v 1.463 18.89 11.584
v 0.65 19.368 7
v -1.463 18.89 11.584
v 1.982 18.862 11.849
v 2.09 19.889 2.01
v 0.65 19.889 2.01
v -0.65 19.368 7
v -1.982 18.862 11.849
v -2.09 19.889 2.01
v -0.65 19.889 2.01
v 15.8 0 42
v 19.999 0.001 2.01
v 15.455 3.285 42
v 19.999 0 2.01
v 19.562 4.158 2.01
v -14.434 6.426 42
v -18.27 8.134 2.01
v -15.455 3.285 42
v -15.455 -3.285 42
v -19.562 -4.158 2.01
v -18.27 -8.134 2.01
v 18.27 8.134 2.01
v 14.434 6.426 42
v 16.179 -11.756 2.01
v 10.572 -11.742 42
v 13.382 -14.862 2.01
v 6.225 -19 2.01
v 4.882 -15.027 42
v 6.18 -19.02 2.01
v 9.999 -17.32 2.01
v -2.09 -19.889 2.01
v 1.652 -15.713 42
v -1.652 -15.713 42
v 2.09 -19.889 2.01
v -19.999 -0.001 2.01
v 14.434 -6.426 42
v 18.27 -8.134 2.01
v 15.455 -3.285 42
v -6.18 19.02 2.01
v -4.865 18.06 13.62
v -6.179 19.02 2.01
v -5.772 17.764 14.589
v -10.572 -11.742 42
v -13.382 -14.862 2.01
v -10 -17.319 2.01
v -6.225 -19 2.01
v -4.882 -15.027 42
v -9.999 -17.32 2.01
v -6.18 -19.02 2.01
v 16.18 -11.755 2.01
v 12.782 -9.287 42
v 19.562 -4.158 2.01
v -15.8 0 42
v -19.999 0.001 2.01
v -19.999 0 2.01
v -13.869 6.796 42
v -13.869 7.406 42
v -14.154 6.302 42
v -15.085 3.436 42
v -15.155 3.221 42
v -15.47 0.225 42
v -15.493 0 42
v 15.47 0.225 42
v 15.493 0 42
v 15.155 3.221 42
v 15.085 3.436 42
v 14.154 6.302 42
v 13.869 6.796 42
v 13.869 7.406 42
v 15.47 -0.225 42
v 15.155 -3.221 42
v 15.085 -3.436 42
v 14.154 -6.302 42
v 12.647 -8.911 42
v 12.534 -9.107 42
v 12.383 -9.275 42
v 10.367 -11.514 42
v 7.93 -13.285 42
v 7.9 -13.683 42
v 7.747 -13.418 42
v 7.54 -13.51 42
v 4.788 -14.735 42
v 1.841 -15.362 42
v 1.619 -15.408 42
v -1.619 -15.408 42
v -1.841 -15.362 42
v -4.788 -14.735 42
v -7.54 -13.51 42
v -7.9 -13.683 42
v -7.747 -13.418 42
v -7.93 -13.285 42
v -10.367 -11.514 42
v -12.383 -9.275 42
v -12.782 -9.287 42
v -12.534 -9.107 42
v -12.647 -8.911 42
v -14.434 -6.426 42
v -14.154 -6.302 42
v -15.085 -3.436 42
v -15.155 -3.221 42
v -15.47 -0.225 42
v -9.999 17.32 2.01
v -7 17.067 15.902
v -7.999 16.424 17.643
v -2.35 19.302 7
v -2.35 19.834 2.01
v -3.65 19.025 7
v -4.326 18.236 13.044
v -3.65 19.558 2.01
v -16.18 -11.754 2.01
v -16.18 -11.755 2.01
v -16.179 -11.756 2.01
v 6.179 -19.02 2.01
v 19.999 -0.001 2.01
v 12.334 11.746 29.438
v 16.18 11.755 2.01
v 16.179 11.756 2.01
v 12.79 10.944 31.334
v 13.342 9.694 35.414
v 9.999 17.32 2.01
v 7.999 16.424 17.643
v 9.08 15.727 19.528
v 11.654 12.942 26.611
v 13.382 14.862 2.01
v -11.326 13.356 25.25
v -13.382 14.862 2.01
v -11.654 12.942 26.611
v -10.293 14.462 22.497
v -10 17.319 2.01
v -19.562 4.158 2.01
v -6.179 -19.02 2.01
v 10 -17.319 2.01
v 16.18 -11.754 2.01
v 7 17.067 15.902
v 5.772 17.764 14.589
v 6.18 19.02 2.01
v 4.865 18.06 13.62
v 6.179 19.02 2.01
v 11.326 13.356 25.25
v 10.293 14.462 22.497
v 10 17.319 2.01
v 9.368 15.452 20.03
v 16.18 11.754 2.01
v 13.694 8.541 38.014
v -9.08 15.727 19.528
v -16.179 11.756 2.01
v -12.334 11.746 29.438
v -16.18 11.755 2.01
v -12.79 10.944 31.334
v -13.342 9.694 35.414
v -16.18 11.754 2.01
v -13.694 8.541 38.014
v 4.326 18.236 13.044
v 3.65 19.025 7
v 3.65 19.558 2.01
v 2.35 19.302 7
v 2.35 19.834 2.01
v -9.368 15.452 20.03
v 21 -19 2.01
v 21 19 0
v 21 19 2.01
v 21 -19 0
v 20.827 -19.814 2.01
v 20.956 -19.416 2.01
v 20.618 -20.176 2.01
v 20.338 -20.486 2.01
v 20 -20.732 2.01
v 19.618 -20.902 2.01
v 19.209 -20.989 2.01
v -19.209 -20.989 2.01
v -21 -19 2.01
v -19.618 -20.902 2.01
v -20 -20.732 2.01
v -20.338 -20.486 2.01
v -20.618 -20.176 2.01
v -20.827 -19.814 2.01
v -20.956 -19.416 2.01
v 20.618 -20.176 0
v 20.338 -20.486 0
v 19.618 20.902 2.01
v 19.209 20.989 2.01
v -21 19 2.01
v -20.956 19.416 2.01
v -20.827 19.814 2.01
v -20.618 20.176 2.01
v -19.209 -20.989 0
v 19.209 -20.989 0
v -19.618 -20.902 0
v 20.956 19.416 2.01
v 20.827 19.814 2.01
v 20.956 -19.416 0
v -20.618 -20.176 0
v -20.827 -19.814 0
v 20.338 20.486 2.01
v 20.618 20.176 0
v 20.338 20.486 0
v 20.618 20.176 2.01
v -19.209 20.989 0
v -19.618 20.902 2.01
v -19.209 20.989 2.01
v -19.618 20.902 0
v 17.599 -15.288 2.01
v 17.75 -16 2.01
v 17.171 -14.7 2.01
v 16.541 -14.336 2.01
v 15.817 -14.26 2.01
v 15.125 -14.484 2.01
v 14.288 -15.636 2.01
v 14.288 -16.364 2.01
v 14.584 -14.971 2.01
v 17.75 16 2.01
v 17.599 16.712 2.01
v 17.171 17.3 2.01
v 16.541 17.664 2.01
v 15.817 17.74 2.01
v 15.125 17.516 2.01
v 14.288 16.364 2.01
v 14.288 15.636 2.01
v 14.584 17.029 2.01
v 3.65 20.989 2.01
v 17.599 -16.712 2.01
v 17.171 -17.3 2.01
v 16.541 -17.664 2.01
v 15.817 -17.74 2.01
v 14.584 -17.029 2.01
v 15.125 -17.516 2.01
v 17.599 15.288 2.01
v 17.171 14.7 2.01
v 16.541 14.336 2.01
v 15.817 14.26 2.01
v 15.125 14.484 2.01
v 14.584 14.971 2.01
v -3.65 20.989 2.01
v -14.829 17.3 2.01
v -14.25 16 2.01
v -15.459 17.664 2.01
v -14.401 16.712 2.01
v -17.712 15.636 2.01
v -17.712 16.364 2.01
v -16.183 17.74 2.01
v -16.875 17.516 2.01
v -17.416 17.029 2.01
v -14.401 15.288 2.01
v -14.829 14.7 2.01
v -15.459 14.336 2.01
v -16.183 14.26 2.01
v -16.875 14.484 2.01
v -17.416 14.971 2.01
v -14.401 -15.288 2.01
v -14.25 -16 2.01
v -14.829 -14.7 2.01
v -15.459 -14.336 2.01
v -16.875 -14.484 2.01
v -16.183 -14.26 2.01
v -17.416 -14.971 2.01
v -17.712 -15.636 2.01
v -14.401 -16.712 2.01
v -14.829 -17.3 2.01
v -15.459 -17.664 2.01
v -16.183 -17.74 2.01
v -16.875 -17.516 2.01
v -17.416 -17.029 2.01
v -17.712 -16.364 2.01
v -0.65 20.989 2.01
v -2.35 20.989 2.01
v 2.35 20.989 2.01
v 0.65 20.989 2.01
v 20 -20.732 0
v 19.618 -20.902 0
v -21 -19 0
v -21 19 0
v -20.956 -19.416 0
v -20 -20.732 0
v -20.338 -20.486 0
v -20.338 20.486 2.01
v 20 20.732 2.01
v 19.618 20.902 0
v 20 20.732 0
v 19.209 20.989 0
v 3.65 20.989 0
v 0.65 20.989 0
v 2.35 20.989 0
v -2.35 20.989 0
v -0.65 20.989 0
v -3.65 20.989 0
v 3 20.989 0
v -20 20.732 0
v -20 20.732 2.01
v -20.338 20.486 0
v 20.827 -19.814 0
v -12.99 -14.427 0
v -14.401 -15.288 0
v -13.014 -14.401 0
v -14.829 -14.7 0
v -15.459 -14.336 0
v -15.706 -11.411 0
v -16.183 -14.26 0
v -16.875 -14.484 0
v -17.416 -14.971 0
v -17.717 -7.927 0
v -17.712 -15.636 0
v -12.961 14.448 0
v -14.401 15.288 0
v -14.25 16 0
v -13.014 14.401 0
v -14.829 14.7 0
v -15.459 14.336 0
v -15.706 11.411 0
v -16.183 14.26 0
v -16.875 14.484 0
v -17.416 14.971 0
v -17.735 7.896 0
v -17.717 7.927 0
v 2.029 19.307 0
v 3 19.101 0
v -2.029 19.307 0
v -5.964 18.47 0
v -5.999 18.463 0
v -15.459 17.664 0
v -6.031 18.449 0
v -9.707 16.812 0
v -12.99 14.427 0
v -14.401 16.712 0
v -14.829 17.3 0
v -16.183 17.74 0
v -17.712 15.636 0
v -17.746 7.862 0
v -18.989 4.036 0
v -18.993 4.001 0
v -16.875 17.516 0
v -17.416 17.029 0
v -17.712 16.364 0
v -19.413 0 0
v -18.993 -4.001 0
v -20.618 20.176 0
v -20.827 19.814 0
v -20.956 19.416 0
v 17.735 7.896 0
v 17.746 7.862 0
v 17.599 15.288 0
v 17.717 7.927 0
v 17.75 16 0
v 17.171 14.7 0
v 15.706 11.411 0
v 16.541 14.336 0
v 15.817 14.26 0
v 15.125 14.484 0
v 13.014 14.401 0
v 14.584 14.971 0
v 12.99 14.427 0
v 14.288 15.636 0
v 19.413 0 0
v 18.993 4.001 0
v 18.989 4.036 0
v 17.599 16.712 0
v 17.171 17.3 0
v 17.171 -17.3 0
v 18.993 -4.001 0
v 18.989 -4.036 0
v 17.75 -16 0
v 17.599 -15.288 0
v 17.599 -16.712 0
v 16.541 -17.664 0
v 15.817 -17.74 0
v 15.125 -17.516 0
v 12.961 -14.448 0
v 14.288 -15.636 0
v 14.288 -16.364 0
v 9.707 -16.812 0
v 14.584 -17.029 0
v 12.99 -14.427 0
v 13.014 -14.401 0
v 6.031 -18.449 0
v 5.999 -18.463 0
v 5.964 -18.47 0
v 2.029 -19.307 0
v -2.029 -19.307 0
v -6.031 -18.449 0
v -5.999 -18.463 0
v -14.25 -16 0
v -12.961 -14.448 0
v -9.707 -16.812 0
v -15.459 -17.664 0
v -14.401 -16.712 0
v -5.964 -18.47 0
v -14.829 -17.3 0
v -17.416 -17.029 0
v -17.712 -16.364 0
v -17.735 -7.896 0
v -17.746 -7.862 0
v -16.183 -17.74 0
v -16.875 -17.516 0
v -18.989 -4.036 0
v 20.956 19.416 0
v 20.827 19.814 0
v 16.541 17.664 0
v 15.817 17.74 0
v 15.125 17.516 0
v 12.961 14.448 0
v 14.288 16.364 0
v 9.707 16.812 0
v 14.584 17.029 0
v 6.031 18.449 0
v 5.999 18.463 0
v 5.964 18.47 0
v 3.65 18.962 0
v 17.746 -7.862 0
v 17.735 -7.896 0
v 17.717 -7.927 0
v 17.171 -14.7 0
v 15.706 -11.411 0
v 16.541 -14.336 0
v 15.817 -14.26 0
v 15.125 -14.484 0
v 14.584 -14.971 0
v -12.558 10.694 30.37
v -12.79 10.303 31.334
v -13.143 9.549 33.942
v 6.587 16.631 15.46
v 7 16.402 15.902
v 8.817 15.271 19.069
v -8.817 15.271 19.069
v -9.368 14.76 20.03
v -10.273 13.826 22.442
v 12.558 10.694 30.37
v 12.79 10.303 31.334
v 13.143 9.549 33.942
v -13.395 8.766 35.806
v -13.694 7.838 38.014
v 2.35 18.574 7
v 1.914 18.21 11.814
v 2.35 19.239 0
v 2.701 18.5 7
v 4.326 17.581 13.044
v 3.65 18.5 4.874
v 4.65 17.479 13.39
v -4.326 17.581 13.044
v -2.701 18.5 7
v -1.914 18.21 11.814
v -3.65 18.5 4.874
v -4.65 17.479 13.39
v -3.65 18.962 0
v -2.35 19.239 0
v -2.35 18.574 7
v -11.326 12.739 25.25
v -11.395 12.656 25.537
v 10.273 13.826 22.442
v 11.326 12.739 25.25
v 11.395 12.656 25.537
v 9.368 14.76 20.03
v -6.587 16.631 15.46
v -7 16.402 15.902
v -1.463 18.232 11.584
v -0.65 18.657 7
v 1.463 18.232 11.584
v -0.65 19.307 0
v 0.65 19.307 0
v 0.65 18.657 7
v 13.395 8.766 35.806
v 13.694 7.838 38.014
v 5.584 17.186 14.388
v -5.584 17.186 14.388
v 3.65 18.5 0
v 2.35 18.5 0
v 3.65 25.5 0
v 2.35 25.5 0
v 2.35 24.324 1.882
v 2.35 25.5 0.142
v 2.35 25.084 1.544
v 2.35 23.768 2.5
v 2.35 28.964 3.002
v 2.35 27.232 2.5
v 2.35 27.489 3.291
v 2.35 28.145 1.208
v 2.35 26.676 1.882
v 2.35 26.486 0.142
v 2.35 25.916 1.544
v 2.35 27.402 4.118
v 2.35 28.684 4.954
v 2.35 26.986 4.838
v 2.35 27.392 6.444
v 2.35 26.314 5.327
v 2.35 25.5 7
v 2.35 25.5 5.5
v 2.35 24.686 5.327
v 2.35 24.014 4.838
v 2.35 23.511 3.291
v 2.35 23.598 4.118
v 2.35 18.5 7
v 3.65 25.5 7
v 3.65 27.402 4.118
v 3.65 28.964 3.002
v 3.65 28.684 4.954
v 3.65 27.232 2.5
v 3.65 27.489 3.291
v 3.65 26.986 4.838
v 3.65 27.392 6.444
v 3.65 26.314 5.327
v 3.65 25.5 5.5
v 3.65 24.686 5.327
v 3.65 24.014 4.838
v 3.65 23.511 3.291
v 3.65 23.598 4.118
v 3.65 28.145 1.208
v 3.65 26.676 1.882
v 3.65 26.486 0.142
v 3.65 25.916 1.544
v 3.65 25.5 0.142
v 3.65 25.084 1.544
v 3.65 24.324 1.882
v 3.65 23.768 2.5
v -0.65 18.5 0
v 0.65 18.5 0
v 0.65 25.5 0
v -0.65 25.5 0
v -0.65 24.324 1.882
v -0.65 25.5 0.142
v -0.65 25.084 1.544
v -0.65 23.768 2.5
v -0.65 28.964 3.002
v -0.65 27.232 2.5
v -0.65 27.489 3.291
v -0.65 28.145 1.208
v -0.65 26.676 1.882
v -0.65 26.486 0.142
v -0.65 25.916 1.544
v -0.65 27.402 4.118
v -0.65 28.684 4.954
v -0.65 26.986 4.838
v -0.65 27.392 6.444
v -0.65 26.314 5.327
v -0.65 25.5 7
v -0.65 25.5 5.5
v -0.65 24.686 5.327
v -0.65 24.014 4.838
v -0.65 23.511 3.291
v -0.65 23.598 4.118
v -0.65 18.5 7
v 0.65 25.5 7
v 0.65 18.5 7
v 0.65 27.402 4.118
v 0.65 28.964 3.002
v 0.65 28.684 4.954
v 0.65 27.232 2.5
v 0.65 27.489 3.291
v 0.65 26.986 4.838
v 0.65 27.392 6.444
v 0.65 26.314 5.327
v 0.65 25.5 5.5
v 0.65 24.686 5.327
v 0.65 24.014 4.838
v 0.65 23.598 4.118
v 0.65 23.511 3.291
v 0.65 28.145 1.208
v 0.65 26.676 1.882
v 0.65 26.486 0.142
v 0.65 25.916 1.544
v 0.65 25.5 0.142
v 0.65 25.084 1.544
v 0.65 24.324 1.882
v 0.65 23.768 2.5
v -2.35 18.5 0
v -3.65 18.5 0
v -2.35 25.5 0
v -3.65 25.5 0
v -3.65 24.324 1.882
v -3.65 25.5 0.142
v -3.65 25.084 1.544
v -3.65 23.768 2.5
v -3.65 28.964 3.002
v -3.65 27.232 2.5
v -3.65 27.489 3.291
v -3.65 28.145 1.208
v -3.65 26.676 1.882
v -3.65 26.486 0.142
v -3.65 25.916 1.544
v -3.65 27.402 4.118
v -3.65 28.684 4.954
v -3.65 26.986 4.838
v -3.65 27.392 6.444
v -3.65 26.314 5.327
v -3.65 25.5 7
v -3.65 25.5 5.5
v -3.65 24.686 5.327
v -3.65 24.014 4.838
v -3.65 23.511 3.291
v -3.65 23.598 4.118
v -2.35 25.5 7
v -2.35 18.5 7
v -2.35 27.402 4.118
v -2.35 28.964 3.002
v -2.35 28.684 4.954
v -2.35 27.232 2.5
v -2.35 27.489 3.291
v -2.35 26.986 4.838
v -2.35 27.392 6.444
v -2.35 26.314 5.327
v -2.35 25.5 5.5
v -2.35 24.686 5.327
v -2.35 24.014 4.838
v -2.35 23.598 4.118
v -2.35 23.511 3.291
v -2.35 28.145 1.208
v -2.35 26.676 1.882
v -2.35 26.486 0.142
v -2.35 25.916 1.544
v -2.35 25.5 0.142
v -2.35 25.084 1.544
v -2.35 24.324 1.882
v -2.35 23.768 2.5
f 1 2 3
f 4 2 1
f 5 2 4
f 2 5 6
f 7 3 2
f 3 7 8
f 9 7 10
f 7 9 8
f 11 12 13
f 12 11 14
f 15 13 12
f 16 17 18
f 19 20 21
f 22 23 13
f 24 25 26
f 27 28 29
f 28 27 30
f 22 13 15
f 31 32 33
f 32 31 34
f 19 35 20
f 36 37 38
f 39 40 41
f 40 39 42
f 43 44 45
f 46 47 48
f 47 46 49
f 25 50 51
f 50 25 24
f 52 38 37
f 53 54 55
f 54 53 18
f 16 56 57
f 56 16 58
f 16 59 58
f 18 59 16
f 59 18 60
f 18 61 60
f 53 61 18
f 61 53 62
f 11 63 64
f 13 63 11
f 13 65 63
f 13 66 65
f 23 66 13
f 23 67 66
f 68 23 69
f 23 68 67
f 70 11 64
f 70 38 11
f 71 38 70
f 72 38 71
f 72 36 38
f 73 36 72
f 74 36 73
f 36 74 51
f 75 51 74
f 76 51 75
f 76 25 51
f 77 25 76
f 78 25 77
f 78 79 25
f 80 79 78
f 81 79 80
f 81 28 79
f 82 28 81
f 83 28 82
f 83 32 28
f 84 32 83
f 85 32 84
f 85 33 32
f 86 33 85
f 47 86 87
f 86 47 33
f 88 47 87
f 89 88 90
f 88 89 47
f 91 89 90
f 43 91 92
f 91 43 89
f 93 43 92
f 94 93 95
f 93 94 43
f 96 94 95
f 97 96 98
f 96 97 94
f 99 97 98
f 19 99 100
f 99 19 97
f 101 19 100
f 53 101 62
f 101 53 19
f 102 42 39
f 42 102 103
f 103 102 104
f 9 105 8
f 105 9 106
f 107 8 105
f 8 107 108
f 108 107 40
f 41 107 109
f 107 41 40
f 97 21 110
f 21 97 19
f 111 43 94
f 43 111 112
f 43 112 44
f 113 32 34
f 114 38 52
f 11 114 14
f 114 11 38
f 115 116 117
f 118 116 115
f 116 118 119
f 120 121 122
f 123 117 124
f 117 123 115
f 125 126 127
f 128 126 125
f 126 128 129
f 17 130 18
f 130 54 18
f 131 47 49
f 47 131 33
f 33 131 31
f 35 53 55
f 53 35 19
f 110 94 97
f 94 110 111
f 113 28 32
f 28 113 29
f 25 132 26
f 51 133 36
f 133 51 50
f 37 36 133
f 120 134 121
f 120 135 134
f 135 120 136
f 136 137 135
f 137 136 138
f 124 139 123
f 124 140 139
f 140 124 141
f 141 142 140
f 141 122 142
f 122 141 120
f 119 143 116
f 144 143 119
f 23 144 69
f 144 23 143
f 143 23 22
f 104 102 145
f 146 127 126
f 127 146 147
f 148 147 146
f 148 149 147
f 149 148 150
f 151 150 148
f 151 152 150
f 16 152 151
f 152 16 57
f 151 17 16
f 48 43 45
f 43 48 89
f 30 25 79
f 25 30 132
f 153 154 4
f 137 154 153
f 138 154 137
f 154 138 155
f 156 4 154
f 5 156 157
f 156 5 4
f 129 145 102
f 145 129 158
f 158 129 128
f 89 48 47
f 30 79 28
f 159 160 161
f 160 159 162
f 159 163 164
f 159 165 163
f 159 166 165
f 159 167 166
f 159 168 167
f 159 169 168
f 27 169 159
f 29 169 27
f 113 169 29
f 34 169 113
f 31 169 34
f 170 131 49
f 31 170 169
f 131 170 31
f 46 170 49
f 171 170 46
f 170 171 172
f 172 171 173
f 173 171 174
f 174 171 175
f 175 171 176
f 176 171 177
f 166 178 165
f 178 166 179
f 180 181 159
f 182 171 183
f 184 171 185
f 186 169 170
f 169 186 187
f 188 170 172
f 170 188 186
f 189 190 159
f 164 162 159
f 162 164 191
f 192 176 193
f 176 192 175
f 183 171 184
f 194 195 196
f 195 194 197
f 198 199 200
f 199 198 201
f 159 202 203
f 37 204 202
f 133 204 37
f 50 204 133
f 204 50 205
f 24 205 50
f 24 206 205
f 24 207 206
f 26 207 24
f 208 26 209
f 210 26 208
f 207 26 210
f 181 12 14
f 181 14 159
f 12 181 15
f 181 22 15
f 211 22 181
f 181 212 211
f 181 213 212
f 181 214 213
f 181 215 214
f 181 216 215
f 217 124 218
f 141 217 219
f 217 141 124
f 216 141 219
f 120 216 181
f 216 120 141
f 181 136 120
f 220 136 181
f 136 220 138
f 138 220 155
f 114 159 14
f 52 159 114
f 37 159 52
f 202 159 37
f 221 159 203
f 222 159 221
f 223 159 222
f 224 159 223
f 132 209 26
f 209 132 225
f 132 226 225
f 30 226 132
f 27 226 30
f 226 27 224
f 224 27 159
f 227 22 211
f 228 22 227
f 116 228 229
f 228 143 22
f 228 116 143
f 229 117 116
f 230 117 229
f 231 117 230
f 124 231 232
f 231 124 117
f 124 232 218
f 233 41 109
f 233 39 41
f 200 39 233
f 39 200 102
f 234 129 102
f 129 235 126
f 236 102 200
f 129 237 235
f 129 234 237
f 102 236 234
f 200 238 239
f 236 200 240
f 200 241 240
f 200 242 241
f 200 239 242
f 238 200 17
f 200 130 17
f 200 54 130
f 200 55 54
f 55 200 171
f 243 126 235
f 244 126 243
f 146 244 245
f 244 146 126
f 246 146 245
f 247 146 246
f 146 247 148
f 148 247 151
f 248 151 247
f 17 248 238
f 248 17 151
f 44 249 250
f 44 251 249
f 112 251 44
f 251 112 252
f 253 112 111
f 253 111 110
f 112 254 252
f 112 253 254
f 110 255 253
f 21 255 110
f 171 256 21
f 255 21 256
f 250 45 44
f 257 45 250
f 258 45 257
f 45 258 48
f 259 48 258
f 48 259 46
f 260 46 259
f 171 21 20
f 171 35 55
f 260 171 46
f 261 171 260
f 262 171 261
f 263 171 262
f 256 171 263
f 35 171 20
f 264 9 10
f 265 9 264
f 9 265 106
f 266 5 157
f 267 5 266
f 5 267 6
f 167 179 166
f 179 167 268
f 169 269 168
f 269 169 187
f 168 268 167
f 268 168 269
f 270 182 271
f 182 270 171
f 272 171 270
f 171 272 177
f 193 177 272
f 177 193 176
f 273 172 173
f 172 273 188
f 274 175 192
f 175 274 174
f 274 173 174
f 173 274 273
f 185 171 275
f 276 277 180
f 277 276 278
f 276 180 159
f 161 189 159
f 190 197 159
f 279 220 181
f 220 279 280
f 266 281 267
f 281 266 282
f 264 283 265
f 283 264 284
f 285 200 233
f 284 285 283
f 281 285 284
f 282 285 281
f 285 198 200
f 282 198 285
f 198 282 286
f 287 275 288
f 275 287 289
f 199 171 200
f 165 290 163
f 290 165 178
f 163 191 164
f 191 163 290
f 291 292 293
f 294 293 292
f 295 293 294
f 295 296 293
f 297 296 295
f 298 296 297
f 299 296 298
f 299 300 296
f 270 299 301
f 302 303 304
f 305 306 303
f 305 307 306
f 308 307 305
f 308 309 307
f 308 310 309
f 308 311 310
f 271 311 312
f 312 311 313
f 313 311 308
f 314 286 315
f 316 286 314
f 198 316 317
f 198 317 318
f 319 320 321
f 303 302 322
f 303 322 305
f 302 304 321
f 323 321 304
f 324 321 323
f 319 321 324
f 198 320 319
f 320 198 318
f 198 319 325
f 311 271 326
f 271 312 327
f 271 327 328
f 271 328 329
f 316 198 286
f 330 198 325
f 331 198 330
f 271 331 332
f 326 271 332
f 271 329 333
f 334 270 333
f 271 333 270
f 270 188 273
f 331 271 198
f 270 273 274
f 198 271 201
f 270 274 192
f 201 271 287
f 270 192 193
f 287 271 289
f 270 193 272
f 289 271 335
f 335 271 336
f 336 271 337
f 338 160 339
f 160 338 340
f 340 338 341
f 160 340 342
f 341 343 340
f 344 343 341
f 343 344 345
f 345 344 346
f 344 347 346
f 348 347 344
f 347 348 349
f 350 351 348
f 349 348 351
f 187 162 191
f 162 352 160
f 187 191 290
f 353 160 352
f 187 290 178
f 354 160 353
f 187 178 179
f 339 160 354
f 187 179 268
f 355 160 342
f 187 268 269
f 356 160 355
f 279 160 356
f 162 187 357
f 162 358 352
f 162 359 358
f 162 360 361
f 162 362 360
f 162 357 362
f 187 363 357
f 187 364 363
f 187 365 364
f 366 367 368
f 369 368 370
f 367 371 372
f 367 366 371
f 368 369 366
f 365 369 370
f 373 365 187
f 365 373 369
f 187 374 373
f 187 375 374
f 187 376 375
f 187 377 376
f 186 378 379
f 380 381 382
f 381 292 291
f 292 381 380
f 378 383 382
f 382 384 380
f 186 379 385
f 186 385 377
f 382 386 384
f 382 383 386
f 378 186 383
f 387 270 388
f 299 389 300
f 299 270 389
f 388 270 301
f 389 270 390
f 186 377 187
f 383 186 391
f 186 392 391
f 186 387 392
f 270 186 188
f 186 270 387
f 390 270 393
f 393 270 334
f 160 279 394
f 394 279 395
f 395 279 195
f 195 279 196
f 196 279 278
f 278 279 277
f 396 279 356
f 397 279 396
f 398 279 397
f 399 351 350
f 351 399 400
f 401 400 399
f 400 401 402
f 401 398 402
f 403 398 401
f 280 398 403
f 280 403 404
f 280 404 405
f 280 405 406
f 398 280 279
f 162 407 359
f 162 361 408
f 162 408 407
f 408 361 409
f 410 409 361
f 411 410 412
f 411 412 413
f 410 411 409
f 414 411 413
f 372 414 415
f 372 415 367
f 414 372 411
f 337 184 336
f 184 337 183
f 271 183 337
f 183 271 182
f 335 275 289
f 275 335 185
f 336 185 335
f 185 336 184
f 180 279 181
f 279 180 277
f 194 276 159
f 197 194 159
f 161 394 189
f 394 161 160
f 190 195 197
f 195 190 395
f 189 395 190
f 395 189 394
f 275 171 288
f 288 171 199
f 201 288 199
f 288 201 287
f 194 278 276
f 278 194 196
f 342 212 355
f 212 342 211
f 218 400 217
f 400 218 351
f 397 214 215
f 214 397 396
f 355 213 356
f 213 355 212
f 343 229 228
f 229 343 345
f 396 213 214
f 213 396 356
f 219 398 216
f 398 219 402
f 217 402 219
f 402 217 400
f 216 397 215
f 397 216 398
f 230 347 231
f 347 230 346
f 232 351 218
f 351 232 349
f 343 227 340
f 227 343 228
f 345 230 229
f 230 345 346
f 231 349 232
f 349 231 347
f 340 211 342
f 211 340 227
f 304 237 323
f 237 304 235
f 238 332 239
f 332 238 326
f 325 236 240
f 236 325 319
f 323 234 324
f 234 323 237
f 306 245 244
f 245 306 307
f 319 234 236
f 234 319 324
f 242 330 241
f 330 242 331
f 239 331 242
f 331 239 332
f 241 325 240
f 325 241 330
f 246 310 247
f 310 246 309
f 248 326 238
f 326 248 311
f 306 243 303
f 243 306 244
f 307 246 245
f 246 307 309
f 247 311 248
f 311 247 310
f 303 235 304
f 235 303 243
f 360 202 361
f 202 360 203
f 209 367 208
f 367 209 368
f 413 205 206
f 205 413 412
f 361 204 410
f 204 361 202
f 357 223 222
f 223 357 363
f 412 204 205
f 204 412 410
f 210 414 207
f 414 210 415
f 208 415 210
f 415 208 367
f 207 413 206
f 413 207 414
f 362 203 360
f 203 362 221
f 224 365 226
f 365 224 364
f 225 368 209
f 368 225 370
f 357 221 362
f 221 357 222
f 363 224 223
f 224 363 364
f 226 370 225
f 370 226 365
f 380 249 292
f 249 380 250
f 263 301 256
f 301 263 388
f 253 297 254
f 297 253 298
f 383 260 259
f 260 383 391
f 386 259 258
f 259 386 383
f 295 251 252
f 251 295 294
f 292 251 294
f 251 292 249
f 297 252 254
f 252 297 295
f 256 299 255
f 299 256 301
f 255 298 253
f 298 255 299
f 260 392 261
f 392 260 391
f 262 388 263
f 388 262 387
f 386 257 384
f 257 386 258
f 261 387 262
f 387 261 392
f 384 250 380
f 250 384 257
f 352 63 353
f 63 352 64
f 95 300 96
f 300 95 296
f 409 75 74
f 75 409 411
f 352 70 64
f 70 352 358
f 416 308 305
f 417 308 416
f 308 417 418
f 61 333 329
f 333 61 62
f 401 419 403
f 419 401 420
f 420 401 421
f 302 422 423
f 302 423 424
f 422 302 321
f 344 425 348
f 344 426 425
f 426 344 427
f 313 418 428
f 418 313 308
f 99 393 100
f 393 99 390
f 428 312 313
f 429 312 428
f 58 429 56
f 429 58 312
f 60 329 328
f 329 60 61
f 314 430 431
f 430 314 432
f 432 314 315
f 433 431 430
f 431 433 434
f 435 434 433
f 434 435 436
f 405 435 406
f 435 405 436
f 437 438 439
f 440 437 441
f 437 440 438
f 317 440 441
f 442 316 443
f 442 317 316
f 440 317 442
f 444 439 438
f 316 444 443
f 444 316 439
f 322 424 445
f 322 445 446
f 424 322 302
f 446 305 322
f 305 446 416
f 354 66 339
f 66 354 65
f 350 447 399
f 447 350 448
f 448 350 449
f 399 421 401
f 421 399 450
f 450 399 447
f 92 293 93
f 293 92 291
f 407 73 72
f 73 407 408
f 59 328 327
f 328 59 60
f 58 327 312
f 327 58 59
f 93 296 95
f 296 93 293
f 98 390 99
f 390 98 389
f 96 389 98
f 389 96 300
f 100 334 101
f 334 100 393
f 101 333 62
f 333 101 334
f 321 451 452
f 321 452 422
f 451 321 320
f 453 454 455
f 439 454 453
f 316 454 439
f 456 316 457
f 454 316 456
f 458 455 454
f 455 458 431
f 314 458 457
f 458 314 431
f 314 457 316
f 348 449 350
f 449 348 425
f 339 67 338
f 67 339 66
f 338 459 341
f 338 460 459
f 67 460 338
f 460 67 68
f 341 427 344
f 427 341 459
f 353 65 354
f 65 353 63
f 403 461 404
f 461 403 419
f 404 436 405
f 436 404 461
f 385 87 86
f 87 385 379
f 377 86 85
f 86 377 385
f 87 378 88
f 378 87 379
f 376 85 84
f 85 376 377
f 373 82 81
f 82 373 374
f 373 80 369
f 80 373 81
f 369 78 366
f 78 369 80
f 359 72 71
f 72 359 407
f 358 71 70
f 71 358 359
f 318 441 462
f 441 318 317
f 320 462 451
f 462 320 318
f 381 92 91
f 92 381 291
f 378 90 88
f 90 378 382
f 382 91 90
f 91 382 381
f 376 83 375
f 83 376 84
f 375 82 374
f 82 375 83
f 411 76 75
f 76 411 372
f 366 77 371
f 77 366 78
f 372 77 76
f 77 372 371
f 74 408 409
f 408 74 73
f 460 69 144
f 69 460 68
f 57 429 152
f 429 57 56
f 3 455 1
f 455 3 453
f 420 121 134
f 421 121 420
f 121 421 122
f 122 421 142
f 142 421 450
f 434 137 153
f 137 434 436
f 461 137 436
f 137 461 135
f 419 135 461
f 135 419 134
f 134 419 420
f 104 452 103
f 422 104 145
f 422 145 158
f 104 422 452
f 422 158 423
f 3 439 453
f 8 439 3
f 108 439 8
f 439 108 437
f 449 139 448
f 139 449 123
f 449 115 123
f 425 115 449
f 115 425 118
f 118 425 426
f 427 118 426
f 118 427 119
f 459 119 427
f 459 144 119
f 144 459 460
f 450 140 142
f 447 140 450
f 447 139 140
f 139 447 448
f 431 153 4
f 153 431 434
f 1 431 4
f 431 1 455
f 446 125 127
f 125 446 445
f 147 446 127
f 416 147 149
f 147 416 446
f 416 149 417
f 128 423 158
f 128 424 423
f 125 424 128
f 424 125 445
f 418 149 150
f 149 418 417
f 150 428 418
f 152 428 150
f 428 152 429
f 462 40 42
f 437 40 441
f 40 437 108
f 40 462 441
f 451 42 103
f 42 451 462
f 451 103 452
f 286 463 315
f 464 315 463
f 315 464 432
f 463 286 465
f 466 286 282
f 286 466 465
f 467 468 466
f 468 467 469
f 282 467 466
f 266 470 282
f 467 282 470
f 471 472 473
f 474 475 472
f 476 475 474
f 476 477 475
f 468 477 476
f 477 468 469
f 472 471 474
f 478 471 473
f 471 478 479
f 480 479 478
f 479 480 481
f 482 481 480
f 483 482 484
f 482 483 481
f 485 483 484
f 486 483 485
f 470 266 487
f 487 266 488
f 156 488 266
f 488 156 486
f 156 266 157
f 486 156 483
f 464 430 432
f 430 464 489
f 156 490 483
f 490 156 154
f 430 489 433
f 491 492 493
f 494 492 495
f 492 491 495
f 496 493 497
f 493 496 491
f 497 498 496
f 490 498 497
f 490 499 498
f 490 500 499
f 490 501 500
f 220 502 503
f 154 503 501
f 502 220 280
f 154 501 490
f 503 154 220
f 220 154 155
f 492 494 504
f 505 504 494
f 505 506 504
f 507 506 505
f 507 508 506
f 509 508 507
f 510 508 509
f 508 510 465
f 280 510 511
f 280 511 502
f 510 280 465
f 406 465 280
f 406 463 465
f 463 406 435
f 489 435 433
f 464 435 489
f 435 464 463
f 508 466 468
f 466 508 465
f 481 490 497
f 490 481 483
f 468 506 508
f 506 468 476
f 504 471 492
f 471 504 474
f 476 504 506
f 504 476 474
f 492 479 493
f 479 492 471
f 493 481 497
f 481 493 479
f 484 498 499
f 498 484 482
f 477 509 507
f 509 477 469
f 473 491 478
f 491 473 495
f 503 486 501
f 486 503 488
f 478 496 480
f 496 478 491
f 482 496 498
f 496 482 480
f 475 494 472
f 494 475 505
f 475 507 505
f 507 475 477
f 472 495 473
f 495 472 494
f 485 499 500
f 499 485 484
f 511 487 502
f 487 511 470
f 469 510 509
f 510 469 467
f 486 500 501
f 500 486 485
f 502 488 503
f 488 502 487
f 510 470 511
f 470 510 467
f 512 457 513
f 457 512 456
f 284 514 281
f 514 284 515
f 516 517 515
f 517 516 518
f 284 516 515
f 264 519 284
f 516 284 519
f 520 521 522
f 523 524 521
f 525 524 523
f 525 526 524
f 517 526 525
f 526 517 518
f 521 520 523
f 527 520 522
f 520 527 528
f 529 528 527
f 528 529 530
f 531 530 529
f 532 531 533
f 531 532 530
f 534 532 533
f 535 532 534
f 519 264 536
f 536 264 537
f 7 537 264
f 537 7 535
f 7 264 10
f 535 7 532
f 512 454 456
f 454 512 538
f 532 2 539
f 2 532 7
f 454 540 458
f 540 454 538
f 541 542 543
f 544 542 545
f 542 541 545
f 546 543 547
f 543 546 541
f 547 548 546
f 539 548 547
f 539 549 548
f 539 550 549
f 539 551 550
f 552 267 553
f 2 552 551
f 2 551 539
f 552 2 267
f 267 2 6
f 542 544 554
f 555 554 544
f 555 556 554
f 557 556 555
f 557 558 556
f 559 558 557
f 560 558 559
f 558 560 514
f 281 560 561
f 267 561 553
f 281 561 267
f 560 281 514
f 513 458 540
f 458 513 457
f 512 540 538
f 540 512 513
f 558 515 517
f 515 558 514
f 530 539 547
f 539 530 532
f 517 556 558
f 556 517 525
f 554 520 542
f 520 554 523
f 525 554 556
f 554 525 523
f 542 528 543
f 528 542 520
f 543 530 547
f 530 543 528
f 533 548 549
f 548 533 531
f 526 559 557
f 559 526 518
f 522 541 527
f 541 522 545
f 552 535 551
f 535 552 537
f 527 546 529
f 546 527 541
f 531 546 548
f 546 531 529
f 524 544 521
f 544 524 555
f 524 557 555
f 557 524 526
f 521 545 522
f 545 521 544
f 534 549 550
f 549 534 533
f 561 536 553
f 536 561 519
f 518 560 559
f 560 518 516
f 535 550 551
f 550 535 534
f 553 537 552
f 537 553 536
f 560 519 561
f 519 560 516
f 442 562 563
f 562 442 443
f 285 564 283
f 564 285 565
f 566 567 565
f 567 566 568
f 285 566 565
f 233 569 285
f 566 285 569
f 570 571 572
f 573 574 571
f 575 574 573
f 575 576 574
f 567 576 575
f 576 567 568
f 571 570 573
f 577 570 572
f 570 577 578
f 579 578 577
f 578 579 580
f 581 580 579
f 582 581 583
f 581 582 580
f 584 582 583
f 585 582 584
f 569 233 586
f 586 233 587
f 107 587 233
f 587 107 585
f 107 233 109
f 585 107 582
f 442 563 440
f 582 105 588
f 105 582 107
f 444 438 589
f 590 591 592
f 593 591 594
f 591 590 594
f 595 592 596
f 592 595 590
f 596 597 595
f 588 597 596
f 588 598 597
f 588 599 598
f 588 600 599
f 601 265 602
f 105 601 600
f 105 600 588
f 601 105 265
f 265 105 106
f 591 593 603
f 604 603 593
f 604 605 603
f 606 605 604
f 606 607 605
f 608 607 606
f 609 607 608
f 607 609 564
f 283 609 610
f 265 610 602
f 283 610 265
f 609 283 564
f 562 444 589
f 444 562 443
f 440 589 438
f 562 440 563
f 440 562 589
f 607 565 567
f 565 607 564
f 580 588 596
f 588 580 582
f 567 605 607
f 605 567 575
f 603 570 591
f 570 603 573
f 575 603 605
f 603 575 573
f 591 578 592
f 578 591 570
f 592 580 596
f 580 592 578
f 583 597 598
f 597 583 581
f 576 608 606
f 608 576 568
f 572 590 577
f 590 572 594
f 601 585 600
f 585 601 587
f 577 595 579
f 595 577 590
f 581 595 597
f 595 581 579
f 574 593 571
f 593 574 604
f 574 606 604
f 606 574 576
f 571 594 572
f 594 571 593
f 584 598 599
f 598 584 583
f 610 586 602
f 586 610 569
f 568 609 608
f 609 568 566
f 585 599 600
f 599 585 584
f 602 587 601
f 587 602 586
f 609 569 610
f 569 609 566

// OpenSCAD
/*
Jarkko Saltiola
2013

3D Printer Hot-End Cooler Fan Holder / "air director"

40mm fan dimensions http://www.endpcnoise.com/cgi-bin/e/40mmpapst.html
- Outside 40x40x10 mm
- Screw hole distance 32mm


This is one of my first openscad-scripts so it's very far from perfect.
You can currently adjust tube thickness easily, but other modifications
demand some attention to the code.

*/


tube(); //Tube-part
// platform(); //Clamp-part

//Adjust tube thickness
thickness = 0.27 * 4; // for 4 perimeters (juslem-prusa)



/*Jungle of modules starts from here*/

fan_width = 40;
module tube(){
	rotate([-90,0,0]){
		color("gray"){
			hole(thickness);
			translate([3,-3.5,22]) rotate([90,0,-90])
			clamps(3,7,1.3,2);
		}
	}
}

module holes(){
	hole_r = 3.5/2;
	hole_h = 3;
	hole_dist = 32;

	$fn=15;
	cylinder(r=hole_r, h=hole_h, center=true);

	translate([-hole_dist,0,0])
	cylinder(r=hole_r, h=hole_h, center=true);
	
	translate([0,-hole_dist,0])
	cylinder(r=hole_r, h=hole_h, center=true);


	translate([-hole_dist,-hole_dist,0])
	cylinder(r=hole_r, h=hole_h, center=true);
}

module platform(){
	translate()

	clamp();
	
	translate([0,5,0])
	reinforcement();
	translate([1.5,-3,2]) rotate([180,90,0])
	clamps(2,6,1.3,2);

	module reinforcement(){
		rotate([0, 90, 0])
		difference(){
			translate([0,-5,0])
			cylinder(r=5, h=8, center=true);

			//Delete parts from cylinder
			translate([3,-4, 0]) //TODO adjusting this is ugly because of the rotation..
			cube(size=[4, 10, 10], center=true);
			translate([3,-8, 0]) 
			cube(size=[20, 6, 15], center=true);
			}
	}


	module clamp(){
		clamp_width = 12;
		clamp_height = 2;
		clamp_length = 20;
		screwhole_diameter = 3;

		module solid(){
			translate([0,clamp_length/2,0]) 
			cube(size=[clamp_width, clamp_length, clamp_height], center=true);
			
			translate([0,clamp_length,0]) 
			cylinder(r=clamp_width/2, h=clamp_height, center=true);
		}

		difference(){
			solid();
			translate([0,clamp_length,0]) 
			cylinder(r=screwhole_diameter, h=clamp_height+1, center=true, $fn=30);


		}
	}
}


/*Add clamps
count: number of clamps
clamp_width: width of clamp
clamp_strength: depth of clamp
screwhole_diameter: ..
*/
module clamps(count, clamp_width, clamp_strength, screwhole_diameter){
	//TODO adjust clamp distance
	for (i = [0 : count-1]){
		translate([0, 0, i*3])
		clamp();
	}

	//Single clamp
	module clamp(){

		module solid(){
			cube(size=[clamp_width, clamp_width, clamp_strength], center=true);
			translate([0,clamp_width/2,0]) 
			
			cylinder(r=clamp_width/2, h=clamp_strength, center=true);
		}

		difference(){
			solid();
			translate([0,clamp_width/2,0]) 
			cylinder(r=screwhole_diameter, h=clamp_strength+0.1, center=true, $fn=15);
		}
	}

}

/* Create tube with holes */
module hole(strength) {
	difference(){
		solid(1);
		
		translate([fan_width/2 -4 ,-1,fan_width/2 -4]) rotate([90,0,0])
		holes();

		// Add hole to the tube
		translate([0, -(fan_width/2)-2, 0]) rotate([90,0,0])
		cylinder(r1=(fan_width-strength)/2, r2=(31.6-strength)/2, h=45, center=true);

		//Add hole to top side TODO: nicer edge
		translate([0, -45, 19]) rotate([0,0,0]) scale([1,2.4,1])
		cylinder(r=14, h=30, center=true);
	}
}

mink_value = 2;
/* Create "solid tube" with bottom layer  */
module solid(strength){
	translate([0, -(fan_width/2)-2, 0]) rotate([90,0,0])
	cylinder(r1=fan_width/2, r2=31.6/2, h=40, center=true);

	rotate([90,0,0]) translate ([-(fan_width/2) + mink_value/2,-(fan_width/2) + mink_value/2,0])
	
	//Create the bottom layer (part that has screw-holes)
	minkowski(){
	cube(size=[fan_width - mink_value, fan_width - mink_value, 2], center=false);
	cylinder(r=mink_value, h=0.01, center=true, $fn=30, center=false);
	}
}
